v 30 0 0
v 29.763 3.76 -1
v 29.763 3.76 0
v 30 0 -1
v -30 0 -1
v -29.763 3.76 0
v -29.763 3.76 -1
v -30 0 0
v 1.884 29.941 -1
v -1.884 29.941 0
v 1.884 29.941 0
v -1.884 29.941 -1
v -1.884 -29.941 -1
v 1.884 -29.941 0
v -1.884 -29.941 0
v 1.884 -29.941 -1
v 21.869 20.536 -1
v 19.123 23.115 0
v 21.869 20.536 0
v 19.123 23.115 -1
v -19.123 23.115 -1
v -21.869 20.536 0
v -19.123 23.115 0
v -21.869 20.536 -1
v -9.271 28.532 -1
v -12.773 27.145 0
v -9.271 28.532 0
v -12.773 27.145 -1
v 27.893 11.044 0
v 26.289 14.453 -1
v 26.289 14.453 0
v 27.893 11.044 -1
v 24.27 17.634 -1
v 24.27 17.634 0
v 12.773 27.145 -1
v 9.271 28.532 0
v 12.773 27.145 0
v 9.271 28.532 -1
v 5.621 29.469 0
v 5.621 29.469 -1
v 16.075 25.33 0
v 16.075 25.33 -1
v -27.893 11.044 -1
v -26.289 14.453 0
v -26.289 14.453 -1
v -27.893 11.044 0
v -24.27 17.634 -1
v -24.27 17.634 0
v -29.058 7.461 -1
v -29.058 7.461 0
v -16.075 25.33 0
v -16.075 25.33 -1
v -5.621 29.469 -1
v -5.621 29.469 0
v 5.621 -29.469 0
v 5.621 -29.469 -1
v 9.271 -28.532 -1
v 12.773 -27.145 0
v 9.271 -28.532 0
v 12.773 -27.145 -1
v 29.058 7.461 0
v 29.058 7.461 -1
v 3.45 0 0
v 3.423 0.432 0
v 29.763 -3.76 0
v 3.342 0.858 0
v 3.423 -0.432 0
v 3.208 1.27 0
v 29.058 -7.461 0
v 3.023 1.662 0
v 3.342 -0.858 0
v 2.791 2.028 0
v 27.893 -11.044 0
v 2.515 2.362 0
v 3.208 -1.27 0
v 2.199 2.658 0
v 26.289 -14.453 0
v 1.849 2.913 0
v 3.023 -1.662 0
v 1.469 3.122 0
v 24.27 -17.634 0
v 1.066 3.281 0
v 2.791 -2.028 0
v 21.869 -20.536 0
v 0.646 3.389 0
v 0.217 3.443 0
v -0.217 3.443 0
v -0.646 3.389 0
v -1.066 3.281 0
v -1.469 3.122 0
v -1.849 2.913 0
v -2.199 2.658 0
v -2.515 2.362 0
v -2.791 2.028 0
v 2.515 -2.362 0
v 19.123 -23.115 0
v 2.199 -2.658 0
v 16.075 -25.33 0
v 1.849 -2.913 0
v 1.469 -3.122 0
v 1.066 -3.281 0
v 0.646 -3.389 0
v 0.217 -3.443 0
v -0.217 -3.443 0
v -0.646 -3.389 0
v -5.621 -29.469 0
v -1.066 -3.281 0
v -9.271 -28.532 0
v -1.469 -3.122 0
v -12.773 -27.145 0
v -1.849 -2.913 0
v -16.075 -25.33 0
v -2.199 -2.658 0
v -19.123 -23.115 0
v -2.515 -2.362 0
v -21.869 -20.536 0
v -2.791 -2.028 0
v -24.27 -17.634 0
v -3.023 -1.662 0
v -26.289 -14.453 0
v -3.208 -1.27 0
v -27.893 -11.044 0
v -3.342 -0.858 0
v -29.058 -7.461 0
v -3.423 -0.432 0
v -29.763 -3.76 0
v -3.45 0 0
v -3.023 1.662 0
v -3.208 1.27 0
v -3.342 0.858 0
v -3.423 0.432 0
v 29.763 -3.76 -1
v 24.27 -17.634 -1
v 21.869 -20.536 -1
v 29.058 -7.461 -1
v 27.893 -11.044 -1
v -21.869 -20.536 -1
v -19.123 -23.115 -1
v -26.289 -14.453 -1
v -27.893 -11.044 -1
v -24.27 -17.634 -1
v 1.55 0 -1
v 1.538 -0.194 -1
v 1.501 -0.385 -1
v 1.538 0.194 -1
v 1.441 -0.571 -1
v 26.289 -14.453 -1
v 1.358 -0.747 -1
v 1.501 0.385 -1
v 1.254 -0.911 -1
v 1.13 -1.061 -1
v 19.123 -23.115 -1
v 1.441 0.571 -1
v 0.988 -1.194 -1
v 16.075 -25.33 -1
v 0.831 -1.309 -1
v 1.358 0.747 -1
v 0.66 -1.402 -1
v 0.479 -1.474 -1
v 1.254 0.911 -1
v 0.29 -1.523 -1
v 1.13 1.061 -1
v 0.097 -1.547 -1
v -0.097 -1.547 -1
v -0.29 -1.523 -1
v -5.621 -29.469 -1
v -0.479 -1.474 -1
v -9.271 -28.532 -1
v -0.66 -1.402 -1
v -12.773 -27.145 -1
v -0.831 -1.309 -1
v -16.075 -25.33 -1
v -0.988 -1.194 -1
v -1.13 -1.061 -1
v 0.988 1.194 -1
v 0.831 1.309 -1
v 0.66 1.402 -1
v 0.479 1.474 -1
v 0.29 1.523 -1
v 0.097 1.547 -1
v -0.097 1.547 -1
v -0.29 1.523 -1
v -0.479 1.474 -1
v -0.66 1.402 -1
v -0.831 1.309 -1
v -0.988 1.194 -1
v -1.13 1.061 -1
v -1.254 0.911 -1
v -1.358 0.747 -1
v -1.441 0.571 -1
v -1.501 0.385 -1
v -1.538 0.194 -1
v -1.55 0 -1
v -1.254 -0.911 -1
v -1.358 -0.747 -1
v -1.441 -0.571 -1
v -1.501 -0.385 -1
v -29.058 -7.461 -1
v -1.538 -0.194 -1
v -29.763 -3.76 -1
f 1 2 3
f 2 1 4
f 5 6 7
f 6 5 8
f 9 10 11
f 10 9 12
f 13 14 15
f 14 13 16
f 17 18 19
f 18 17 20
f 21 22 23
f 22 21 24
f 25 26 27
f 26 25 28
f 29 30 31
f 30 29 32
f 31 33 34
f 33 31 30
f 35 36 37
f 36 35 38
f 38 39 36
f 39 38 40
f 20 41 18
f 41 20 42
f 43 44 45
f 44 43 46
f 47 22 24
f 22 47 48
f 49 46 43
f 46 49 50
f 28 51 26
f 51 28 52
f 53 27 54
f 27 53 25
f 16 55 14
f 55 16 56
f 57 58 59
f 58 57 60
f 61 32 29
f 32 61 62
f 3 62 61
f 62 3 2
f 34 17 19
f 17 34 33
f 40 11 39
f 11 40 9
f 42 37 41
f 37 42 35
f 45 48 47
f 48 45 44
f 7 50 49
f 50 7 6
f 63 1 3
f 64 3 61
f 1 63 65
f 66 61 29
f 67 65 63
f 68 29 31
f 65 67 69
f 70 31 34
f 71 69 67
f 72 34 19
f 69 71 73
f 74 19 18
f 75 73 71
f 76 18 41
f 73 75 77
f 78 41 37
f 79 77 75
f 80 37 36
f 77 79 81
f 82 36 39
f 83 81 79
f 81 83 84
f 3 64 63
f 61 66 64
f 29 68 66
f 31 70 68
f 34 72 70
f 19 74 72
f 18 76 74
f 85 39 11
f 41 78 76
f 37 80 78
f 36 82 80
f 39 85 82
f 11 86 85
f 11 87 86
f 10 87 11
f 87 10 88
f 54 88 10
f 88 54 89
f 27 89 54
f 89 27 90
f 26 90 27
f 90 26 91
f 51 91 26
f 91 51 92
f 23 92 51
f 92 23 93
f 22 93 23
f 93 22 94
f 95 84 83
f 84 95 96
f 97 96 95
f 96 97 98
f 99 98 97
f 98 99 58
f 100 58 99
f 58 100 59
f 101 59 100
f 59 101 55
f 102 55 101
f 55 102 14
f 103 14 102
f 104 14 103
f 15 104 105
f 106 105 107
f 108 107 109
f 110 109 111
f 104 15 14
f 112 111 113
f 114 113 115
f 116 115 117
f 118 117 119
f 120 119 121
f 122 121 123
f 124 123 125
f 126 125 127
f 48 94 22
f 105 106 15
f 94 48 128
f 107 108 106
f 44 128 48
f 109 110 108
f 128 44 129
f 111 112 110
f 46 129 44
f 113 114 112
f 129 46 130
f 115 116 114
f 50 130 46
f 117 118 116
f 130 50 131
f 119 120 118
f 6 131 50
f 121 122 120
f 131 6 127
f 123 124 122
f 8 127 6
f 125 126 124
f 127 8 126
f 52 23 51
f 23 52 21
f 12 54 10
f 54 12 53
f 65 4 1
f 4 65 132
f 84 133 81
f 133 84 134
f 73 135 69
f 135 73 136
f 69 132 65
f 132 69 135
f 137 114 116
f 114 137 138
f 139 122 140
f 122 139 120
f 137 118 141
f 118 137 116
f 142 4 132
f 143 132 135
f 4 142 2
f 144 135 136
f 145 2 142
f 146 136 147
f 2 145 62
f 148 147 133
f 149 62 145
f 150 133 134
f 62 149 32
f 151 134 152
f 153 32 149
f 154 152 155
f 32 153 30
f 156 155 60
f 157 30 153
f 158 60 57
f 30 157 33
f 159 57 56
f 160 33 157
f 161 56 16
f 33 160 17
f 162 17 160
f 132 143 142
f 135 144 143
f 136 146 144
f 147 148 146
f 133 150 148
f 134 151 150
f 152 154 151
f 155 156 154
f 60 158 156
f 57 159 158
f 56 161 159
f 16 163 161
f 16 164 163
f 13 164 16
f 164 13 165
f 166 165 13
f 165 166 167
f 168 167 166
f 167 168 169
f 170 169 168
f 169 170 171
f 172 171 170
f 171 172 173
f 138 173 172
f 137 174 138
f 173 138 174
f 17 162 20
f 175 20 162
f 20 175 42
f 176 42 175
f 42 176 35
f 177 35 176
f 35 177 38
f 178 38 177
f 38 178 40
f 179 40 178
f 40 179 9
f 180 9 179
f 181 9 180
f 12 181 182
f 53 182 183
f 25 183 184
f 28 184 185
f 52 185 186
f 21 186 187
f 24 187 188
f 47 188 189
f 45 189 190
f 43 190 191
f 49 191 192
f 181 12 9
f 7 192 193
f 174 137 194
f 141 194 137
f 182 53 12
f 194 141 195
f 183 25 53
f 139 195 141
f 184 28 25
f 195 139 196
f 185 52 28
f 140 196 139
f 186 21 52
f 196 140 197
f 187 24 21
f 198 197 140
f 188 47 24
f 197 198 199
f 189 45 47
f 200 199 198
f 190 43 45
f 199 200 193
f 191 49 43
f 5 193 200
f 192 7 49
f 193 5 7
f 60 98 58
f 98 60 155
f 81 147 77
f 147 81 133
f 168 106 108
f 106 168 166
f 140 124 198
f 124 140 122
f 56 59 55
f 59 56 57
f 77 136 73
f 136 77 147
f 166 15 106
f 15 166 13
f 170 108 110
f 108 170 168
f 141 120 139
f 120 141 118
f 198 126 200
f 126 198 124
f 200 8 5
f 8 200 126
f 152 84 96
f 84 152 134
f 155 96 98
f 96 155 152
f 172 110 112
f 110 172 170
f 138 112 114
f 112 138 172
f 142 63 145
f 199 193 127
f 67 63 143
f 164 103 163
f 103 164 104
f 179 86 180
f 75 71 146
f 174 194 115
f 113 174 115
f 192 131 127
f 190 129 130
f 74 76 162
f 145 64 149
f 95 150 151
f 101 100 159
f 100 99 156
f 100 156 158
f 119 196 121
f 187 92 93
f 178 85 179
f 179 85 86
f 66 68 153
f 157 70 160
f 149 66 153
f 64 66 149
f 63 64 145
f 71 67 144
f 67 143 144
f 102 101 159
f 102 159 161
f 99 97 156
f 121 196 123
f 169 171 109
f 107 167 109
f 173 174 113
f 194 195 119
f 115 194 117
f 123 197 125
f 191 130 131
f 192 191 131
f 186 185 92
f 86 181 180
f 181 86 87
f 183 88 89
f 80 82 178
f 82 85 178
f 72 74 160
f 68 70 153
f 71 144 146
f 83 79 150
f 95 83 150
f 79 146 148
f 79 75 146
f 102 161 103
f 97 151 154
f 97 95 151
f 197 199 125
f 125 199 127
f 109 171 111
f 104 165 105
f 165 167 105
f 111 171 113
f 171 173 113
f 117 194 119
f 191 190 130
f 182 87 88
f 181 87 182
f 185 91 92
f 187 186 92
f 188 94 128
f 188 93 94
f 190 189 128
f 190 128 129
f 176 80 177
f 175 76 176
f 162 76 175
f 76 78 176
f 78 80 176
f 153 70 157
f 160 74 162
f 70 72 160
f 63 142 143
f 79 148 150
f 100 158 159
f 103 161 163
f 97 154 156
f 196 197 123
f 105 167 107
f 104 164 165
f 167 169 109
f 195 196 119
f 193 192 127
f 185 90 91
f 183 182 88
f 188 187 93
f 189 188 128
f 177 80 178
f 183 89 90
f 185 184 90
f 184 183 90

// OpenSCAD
$fn = 50;


difference() {
	union() {
		translate(v = [0, 0, -1.0000000000]) {
			cylinder(h = 1.0000000000, r = 30.0000000000);
		}
		translate(v = [0, 0, -1.0000000000]) {
			cylinder(h = 1.0000000000, r = 2.8750000000);
		}
	}
	union() {
		translate(v = [0, 0, 0]) {
			rotate(a = [0, 0, 0]) {
				difference() {
					union() {
						#translate(v = [0, 0, -1.0000000000]) {
							cylinder(h = 1.0000000000, r = 1.2500000000);
						}
						#translate(v = [0, 0, -1.0000000000]) {
							cylinder(h = 1.0000000000, r1 = 1.5500000000, r2 = 3.4500000000);
						}
						#translate(v = [0, 0, -1.0000000000]) {
							cylinder(h = 1.0000000000, r = 1.5500000000);
						}
						#translate(v = [0, 0, -1.0000000000]) {
							cylinder(h = 1.0000000000, r = 1.2500000000);
						}
					}
					union();
				}
			}
		}
	}
}
